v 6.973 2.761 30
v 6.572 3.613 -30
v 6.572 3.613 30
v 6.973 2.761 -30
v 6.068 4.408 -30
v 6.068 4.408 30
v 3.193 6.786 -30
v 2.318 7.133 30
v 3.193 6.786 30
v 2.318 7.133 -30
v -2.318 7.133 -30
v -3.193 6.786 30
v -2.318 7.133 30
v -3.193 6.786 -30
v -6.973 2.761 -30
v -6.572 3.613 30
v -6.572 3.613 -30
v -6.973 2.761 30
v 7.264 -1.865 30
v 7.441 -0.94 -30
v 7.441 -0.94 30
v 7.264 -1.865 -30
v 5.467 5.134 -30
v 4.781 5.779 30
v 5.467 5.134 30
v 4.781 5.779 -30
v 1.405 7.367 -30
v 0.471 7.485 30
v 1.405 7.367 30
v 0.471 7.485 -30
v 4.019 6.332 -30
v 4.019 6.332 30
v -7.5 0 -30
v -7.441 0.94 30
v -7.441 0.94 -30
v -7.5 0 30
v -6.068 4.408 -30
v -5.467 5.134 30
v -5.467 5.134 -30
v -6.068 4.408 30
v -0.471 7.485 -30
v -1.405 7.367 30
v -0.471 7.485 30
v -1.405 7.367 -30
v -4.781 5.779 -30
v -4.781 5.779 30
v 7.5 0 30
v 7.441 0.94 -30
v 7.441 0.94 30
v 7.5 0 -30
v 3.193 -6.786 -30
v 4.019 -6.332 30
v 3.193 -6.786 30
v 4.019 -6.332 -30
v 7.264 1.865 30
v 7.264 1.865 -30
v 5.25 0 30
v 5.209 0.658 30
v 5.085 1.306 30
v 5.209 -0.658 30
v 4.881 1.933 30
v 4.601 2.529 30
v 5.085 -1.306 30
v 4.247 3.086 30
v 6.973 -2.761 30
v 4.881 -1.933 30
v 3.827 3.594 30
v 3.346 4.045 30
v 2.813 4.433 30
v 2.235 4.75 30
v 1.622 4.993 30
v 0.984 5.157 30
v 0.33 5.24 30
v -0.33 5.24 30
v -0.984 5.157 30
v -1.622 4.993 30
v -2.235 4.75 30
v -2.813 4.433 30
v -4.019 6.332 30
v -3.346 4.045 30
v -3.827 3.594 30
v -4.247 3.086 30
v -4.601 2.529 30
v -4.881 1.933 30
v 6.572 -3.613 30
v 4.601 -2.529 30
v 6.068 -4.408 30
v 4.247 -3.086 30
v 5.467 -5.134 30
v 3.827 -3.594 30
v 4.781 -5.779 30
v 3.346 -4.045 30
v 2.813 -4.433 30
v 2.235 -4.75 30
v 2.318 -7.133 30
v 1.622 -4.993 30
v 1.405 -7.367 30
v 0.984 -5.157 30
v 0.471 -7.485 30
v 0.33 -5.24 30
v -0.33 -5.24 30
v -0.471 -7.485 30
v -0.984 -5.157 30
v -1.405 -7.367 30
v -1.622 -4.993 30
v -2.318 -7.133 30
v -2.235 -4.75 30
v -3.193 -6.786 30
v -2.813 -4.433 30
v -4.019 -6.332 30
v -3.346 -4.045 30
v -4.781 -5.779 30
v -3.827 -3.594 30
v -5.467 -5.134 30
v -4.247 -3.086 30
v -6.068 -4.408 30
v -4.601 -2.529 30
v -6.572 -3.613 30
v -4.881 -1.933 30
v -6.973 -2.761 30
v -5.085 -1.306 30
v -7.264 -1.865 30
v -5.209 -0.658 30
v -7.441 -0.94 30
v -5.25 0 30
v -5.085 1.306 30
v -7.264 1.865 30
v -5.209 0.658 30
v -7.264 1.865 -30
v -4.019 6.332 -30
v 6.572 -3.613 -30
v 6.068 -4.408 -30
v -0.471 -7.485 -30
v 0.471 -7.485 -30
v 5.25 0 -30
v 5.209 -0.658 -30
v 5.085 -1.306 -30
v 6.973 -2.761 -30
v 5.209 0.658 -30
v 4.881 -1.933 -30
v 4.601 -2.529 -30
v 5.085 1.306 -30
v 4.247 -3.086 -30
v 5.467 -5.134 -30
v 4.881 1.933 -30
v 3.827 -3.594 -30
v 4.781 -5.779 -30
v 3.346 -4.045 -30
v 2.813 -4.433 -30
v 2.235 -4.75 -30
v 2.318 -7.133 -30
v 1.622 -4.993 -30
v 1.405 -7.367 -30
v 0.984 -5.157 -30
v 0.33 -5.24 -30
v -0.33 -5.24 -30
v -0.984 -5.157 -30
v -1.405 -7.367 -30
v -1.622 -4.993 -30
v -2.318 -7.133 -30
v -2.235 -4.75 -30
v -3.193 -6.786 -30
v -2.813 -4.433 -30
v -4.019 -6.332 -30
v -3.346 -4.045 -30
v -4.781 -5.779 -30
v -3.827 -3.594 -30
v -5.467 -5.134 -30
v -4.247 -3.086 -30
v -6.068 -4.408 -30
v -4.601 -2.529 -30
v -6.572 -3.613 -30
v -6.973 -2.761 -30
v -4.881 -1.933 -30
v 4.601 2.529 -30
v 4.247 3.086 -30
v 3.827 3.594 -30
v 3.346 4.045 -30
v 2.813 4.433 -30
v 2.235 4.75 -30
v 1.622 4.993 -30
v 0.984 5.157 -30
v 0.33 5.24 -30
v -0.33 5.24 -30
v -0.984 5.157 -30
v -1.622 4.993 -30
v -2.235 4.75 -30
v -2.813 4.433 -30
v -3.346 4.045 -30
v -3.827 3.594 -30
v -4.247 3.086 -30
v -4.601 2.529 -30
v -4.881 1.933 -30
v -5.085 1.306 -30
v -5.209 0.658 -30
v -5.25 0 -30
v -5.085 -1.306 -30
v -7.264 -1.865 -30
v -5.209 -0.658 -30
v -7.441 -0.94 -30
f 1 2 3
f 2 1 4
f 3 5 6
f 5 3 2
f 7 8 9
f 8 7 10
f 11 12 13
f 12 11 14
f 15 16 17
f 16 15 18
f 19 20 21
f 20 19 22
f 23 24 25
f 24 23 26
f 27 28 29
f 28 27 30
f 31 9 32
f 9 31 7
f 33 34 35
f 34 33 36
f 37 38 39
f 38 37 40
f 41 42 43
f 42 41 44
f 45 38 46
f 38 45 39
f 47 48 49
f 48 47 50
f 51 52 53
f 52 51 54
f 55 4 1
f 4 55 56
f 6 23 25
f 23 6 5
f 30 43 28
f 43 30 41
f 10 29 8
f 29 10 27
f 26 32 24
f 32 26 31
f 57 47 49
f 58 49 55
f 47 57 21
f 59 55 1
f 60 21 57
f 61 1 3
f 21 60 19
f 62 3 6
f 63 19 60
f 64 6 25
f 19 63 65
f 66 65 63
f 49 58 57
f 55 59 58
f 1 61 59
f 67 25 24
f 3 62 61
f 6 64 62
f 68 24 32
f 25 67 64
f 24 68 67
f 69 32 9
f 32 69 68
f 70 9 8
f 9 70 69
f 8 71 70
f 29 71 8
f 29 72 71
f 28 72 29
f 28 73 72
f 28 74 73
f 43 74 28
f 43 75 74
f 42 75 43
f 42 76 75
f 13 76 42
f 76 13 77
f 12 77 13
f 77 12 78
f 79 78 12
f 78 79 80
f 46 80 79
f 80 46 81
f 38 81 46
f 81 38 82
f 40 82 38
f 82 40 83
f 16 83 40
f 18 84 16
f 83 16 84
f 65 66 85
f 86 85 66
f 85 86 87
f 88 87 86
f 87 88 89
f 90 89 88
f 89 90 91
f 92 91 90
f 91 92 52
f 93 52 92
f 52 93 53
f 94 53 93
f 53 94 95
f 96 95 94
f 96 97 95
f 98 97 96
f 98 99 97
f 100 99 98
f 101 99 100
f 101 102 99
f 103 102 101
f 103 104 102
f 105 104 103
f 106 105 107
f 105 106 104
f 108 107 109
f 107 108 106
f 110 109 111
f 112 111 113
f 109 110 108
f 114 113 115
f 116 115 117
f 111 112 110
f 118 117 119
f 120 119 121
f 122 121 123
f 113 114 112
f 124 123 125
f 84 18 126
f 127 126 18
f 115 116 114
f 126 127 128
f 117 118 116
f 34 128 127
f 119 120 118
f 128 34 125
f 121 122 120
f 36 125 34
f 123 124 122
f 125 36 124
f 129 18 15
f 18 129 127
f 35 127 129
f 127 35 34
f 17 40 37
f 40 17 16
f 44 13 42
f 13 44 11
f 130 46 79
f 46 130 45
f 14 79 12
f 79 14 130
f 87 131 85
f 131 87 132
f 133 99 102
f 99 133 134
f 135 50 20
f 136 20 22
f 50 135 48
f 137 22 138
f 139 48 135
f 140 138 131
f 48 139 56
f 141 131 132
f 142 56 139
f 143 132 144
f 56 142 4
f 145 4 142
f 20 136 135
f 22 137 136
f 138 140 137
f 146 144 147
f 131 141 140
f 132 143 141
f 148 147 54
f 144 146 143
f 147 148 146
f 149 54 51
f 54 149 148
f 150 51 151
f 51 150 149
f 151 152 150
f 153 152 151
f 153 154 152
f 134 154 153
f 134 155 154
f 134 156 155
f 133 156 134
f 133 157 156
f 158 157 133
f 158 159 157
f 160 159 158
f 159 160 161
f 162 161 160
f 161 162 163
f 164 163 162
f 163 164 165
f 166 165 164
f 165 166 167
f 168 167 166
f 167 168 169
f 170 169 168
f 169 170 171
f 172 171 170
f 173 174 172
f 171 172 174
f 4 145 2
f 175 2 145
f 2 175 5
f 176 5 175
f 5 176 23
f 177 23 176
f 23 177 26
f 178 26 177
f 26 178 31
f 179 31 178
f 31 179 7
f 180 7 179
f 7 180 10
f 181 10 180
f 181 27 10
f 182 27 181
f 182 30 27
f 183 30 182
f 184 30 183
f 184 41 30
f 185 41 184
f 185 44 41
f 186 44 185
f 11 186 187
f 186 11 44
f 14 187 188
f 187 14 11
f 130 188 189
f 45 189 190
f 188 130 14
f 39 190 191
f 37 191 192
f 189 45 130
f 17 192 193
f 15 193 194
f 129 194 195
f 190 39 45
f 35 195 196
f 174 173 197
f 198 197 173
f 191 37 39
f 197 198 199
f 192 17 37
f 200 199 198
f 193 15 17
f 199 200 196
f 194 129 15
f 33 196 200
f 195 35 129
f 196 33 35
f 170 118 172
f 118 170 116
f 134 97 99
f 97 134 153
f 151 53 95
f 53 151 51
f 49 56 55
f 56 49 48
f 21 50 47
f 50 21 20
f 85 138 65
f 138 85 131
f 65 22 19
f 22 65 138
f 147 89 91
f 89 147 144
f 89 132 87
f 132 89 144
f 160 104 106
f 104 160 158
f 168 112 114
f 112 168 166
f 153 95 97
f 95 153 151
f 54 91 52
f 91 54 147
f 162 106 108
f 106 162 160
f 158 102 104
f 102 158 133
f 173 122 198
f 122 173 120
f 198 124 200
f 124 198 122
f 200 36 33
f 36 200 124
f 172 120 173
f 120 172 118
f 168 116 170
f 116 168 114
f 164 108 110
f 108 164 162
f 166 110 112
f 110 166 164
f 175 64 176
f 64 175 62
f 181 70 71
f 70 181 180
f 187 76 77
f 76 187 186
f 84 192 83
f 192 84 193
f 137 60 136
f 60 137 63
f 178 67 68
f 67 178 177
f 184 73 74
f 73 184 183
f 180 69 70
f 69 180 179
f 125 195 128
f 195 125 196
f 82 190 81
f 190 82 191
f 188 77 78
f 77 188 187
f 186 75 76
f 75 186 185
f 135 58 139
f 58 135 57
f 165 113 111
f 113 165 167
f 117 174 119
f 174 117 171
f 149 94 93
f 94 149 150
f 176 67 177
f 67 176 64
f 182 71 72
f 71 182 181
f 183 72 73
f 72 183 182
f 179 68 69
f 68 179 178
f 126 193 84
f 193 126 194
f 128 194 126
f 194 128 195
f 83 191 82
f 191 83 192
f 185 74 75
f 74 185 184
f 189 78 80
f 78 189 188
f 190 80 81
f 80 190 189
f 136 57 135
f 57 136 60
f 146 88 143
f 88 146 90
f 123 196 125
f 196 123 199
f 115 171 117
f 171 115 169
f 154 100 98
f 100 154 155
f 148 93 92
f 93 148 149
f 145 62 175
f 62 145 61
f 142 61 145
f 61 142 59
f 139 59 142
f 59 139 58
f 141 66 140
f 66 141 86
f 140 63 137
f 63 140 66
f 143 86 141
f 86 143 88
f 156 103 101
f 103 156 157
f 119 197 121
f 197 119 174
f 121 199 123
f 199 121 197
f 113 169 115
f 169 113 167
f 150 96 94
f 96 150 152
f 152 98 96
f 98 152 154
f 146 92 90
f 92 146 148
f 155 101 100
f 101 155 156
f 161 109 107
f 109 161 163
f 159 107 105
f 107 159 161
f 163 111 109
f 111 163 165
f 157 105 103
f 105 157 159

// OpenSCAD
$fn = 50;


difference() {
	union() {
		translate(v = [0, 0, -30.0000000000]) {
			cylinder(h = 60, r = 7.5000000000);
		}
	}
	union() {
		translate(v = [0, 0, -100.0000000000]) {
			cylinder(h = 200, r = 5.2500000000);
		}
	}
}
